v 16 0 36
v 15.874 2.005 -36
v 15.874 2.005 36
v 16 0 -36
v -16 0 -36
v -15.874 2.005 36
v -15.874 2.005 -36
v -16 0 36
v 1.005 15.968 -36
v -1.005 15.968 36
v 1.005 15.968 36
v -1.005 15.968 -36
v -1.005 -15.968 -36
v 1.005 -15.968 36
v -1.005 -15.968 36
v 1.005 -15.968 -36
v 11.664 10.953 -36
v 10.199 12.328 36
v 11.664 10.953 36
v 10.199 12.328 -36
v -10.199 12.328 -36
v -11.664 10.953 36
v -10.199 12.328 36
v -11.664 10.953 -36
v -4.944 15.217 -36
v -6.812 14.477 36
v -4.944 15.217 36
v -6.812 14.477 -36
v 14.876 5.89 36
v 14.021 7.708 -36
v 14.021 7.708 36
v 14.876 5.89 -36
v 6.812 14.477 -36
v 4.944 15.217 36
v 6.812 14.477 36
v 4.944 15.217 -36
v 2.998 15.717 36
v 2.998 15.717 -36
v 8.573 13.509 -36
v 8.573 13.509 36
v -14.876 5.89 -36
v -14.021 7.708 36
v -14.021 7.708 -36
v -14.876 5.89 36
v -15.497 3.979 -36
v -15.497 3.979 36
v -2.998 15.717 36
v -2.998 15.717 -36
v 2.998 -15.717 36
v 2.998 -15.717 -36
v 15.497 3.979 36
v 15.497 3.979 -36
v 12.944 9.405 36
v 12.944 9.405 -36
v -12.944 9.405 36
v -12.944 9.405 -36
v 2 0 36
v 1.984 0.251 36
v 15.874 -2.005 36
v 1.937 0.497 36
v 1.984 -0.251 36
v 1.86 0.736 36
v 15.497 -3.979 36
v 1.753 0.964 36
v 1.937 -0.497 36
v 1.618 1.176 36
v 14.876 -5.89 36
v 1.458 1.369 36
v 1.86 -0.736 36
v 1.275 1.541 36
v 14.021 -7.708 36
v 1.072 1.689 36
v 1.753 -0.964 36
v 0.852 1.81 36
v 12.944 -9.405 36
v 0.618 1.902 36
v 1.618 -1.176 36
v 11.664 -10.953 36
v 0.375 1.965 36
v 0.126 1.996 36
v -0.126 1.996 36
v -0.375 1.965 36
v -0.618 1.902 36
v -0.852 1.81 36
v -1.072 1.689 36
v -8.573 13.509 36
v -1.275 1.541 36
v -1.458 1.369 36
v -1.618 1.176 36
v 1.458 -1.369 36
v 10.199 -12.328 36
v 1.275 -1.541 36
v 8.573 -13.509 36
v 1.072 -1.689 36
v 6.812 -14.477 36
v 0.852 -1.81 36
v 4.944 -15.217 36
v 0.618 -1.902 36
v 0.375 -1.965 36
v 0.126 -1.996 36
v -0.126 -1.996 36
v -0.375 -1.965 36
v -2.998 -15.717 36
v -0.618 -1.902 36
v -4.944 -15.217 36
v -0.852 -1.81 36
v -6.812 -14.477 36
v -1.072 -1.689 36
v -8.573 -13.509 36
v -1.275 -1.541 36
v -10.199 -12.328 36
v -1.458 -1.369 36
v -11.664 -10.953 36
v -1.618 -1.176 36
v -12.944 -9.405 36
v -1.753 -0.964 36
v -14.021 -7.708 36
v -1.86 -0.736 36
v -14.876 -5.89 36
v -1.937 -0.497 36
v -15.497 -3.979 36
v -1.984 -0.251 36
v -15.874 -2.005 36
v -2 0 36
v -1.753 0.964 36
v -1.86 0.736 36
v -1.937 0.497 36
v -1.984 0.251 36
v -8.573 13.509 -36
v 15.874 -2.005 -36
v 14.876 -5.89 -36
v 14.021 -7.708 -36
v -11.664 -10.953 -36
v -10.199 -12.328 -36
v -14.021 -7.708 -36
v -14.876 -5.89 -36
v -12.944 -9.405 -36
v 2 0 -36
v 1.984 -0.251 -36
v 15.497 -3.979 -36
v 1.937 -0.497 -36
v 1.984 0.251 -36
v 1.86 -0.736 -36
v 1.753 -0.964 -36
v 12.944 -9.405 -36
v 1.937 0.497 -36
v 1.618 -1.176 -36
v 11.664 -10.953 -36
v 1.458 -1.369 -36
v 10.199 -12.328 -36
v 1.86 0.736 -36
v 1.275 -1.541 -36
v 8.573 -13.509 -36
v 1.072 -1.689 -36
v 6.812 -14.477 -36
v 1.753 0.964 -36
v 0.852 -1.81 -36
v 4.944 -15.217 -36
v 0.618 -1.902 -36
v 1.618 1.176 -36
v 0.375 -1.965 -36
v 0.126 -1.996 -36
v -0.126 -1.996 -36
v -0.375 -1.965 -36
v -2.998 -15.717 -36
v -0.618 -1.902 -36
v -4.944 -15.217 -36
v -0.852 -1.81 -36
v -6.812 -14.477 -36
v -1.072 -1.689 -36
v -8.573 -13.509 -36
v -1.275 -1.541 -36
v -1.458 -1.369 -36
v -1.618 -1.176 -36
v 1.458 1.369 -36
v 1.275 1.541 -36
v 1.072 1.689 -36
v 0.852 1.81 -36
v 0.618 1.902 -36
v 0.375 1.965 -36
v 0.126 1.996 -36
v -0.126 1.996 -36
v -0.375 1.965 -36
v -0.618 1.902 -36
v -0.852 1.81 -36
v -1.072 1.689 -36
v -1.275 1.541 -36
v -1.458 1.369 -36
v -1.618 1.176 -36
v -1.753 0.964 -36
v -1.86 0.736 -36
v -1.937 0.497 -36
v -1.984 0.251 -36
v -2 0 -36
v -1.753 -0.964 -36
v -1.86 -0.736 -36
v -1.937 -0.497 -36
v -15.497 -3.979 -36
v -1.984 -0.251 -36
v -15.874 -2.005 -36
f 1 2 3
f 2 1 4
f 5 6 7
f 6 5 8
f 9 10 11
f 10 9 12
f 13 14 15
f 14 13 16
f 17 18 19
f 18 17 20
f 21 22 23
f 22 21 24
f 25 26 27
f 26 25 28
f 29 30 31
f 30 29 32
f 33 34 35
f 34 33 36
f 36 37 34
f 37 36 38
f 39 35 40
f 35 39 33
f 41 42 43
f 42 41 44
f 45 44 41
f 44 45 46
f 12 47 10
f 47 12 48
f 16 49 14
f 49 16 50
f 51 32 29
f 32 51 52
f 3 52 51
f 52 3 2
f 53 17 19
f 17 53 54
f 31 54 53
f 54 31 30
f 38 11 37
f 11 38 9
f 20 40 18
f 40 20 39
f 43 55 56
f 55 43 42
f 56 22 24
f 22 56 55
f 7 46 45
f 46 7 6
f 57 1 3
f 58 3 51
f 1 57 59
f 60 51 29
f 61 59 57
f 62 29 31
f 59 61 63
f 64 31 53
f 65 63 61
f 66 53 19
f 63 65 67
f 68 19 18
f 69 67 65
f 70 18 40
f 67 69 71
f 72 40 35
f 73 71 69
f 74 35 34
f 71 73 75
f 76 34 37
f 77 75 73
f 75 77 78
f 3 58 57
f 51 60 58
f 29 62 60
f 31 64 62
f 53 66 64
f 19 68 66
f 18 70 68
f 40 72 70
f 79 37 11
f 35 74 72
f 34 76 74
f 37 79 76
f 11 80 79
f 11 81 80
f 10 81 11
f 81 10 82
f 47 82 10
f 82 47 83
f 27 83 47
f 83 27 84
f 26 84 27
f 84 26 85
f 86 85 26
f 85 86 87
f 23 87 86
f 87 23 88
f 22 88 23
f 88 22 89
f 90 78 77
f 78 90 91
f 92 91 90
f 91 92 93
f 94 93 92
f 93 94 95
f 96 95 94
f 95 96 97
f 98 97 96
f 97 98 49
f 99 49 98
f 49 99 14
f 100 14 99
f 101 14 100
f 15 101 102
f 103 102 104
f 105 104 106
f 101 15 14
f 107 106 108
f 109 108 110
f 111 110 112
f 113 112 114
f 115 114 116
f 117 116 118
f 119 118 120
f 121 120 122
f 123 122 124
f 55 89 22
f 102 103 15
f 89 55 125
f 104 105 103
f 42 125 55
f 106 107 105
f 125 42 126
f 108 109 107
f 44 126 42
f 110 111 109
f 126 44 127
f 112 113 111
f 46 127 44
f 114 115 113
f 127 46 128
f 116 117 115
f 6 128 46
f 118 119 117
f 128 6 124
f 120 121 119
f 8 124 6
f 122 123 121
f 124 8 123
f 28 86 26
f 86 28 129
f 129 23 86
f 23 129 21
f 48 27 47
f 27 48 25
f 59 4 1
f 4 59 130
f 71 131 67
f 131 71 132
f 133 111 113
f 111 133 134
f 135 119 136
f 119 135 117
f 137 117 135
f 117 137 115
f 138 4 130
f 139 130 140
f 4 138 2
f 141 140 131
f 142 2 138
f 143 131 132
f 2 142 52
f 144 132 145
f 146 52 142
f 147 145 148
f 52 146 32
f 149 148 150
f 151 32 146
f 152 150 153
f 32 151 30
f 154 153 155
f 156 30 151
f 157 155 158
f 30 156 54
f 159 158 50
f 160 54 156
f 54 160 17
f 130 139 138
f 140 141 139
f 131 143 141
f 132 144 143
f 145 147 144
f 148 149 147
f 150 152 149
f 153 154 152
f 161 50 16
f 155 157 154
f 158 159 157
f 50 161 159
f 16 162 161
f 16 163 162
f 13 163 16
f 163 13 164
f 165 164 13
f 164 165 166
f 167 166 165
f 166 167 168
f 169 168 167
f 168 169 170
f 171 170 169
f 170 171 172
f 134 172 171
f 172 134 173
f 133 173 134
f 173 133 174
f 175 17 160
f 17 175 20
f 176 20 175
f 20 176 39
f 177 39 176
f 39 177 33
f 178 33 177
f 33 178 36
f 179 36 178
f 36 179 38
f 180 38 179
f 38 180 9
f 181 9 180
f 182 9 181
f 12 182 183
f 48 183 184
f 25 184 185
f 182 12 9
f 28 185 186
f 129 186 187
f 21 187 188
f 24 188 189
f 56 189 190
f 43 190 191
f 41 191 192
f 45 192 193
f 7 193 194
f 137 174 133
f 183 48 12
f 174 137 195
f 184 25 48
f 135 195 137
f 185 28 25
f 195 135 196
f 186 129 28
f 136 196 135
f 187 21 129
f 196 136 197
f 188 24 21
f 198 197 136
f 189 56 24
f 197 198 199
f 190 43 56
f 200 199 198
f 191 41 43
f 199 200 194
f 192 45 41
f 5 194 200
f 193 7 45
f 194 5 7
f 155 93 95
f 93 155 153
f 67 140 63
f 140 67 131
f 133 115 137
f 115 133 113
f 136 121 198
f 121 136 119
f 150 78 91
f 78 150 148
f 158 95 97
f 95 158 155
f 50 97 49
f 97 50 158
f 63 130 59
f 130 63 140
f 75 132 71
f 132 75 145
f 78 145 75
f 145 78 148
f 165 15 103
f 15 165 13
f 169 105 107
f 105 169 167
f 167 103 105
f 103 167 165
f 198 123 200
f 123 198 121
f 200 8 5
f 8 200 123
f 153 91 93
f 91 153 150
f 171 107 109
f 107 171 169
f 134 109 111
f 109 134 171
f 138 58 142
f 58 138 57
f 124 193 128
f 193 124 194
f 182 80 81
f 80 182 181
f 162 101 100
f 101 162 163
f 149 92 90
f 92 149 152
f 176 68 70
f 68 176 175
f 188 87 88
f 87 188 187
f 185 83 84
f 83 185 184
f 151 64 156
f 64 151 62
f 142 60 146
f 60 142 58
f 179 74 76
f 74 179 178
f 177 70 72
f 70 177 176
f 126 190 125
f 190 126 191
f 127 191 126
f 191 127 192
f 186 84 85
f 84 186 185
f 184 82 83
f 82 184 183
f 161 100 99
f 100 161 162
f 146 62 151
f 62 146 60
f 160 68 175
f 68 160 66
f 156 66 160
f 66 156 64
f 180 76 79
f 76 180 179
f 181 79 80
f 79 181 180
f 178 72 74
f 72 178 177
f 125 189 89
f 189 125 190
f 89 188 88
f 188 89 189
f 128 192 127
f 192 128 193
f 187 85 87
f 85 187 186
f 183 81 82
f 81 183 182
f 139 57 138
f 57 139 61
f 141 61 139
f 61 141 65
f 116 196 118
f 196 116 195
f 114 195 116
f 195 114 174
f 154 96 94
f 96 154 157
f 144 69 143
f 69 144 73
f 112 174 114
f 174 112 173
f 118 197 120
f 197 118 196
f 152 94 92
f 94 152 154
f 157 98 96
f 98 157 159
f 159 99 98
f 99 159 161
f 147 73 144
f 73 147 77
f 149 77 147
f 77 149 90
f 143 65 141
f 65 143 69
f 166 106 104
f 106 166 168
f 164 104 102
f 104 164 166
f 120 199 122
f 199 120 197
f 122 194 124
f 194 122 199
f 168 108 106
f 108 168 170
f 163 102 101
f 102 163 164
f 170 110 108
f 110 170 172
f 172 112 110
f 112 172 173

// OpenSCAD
$fn = 50;


difference() {
	union() {
		translate(v = [0, 0, -36.0000000000]) {
			cylinder(h = 72, r = 16.0000000000);
		}
	}
	union() {
		translate(v = [0, 0, -100.0000000000]) {
			cylinder(h = 200, r = 2);
		}
	}
}
